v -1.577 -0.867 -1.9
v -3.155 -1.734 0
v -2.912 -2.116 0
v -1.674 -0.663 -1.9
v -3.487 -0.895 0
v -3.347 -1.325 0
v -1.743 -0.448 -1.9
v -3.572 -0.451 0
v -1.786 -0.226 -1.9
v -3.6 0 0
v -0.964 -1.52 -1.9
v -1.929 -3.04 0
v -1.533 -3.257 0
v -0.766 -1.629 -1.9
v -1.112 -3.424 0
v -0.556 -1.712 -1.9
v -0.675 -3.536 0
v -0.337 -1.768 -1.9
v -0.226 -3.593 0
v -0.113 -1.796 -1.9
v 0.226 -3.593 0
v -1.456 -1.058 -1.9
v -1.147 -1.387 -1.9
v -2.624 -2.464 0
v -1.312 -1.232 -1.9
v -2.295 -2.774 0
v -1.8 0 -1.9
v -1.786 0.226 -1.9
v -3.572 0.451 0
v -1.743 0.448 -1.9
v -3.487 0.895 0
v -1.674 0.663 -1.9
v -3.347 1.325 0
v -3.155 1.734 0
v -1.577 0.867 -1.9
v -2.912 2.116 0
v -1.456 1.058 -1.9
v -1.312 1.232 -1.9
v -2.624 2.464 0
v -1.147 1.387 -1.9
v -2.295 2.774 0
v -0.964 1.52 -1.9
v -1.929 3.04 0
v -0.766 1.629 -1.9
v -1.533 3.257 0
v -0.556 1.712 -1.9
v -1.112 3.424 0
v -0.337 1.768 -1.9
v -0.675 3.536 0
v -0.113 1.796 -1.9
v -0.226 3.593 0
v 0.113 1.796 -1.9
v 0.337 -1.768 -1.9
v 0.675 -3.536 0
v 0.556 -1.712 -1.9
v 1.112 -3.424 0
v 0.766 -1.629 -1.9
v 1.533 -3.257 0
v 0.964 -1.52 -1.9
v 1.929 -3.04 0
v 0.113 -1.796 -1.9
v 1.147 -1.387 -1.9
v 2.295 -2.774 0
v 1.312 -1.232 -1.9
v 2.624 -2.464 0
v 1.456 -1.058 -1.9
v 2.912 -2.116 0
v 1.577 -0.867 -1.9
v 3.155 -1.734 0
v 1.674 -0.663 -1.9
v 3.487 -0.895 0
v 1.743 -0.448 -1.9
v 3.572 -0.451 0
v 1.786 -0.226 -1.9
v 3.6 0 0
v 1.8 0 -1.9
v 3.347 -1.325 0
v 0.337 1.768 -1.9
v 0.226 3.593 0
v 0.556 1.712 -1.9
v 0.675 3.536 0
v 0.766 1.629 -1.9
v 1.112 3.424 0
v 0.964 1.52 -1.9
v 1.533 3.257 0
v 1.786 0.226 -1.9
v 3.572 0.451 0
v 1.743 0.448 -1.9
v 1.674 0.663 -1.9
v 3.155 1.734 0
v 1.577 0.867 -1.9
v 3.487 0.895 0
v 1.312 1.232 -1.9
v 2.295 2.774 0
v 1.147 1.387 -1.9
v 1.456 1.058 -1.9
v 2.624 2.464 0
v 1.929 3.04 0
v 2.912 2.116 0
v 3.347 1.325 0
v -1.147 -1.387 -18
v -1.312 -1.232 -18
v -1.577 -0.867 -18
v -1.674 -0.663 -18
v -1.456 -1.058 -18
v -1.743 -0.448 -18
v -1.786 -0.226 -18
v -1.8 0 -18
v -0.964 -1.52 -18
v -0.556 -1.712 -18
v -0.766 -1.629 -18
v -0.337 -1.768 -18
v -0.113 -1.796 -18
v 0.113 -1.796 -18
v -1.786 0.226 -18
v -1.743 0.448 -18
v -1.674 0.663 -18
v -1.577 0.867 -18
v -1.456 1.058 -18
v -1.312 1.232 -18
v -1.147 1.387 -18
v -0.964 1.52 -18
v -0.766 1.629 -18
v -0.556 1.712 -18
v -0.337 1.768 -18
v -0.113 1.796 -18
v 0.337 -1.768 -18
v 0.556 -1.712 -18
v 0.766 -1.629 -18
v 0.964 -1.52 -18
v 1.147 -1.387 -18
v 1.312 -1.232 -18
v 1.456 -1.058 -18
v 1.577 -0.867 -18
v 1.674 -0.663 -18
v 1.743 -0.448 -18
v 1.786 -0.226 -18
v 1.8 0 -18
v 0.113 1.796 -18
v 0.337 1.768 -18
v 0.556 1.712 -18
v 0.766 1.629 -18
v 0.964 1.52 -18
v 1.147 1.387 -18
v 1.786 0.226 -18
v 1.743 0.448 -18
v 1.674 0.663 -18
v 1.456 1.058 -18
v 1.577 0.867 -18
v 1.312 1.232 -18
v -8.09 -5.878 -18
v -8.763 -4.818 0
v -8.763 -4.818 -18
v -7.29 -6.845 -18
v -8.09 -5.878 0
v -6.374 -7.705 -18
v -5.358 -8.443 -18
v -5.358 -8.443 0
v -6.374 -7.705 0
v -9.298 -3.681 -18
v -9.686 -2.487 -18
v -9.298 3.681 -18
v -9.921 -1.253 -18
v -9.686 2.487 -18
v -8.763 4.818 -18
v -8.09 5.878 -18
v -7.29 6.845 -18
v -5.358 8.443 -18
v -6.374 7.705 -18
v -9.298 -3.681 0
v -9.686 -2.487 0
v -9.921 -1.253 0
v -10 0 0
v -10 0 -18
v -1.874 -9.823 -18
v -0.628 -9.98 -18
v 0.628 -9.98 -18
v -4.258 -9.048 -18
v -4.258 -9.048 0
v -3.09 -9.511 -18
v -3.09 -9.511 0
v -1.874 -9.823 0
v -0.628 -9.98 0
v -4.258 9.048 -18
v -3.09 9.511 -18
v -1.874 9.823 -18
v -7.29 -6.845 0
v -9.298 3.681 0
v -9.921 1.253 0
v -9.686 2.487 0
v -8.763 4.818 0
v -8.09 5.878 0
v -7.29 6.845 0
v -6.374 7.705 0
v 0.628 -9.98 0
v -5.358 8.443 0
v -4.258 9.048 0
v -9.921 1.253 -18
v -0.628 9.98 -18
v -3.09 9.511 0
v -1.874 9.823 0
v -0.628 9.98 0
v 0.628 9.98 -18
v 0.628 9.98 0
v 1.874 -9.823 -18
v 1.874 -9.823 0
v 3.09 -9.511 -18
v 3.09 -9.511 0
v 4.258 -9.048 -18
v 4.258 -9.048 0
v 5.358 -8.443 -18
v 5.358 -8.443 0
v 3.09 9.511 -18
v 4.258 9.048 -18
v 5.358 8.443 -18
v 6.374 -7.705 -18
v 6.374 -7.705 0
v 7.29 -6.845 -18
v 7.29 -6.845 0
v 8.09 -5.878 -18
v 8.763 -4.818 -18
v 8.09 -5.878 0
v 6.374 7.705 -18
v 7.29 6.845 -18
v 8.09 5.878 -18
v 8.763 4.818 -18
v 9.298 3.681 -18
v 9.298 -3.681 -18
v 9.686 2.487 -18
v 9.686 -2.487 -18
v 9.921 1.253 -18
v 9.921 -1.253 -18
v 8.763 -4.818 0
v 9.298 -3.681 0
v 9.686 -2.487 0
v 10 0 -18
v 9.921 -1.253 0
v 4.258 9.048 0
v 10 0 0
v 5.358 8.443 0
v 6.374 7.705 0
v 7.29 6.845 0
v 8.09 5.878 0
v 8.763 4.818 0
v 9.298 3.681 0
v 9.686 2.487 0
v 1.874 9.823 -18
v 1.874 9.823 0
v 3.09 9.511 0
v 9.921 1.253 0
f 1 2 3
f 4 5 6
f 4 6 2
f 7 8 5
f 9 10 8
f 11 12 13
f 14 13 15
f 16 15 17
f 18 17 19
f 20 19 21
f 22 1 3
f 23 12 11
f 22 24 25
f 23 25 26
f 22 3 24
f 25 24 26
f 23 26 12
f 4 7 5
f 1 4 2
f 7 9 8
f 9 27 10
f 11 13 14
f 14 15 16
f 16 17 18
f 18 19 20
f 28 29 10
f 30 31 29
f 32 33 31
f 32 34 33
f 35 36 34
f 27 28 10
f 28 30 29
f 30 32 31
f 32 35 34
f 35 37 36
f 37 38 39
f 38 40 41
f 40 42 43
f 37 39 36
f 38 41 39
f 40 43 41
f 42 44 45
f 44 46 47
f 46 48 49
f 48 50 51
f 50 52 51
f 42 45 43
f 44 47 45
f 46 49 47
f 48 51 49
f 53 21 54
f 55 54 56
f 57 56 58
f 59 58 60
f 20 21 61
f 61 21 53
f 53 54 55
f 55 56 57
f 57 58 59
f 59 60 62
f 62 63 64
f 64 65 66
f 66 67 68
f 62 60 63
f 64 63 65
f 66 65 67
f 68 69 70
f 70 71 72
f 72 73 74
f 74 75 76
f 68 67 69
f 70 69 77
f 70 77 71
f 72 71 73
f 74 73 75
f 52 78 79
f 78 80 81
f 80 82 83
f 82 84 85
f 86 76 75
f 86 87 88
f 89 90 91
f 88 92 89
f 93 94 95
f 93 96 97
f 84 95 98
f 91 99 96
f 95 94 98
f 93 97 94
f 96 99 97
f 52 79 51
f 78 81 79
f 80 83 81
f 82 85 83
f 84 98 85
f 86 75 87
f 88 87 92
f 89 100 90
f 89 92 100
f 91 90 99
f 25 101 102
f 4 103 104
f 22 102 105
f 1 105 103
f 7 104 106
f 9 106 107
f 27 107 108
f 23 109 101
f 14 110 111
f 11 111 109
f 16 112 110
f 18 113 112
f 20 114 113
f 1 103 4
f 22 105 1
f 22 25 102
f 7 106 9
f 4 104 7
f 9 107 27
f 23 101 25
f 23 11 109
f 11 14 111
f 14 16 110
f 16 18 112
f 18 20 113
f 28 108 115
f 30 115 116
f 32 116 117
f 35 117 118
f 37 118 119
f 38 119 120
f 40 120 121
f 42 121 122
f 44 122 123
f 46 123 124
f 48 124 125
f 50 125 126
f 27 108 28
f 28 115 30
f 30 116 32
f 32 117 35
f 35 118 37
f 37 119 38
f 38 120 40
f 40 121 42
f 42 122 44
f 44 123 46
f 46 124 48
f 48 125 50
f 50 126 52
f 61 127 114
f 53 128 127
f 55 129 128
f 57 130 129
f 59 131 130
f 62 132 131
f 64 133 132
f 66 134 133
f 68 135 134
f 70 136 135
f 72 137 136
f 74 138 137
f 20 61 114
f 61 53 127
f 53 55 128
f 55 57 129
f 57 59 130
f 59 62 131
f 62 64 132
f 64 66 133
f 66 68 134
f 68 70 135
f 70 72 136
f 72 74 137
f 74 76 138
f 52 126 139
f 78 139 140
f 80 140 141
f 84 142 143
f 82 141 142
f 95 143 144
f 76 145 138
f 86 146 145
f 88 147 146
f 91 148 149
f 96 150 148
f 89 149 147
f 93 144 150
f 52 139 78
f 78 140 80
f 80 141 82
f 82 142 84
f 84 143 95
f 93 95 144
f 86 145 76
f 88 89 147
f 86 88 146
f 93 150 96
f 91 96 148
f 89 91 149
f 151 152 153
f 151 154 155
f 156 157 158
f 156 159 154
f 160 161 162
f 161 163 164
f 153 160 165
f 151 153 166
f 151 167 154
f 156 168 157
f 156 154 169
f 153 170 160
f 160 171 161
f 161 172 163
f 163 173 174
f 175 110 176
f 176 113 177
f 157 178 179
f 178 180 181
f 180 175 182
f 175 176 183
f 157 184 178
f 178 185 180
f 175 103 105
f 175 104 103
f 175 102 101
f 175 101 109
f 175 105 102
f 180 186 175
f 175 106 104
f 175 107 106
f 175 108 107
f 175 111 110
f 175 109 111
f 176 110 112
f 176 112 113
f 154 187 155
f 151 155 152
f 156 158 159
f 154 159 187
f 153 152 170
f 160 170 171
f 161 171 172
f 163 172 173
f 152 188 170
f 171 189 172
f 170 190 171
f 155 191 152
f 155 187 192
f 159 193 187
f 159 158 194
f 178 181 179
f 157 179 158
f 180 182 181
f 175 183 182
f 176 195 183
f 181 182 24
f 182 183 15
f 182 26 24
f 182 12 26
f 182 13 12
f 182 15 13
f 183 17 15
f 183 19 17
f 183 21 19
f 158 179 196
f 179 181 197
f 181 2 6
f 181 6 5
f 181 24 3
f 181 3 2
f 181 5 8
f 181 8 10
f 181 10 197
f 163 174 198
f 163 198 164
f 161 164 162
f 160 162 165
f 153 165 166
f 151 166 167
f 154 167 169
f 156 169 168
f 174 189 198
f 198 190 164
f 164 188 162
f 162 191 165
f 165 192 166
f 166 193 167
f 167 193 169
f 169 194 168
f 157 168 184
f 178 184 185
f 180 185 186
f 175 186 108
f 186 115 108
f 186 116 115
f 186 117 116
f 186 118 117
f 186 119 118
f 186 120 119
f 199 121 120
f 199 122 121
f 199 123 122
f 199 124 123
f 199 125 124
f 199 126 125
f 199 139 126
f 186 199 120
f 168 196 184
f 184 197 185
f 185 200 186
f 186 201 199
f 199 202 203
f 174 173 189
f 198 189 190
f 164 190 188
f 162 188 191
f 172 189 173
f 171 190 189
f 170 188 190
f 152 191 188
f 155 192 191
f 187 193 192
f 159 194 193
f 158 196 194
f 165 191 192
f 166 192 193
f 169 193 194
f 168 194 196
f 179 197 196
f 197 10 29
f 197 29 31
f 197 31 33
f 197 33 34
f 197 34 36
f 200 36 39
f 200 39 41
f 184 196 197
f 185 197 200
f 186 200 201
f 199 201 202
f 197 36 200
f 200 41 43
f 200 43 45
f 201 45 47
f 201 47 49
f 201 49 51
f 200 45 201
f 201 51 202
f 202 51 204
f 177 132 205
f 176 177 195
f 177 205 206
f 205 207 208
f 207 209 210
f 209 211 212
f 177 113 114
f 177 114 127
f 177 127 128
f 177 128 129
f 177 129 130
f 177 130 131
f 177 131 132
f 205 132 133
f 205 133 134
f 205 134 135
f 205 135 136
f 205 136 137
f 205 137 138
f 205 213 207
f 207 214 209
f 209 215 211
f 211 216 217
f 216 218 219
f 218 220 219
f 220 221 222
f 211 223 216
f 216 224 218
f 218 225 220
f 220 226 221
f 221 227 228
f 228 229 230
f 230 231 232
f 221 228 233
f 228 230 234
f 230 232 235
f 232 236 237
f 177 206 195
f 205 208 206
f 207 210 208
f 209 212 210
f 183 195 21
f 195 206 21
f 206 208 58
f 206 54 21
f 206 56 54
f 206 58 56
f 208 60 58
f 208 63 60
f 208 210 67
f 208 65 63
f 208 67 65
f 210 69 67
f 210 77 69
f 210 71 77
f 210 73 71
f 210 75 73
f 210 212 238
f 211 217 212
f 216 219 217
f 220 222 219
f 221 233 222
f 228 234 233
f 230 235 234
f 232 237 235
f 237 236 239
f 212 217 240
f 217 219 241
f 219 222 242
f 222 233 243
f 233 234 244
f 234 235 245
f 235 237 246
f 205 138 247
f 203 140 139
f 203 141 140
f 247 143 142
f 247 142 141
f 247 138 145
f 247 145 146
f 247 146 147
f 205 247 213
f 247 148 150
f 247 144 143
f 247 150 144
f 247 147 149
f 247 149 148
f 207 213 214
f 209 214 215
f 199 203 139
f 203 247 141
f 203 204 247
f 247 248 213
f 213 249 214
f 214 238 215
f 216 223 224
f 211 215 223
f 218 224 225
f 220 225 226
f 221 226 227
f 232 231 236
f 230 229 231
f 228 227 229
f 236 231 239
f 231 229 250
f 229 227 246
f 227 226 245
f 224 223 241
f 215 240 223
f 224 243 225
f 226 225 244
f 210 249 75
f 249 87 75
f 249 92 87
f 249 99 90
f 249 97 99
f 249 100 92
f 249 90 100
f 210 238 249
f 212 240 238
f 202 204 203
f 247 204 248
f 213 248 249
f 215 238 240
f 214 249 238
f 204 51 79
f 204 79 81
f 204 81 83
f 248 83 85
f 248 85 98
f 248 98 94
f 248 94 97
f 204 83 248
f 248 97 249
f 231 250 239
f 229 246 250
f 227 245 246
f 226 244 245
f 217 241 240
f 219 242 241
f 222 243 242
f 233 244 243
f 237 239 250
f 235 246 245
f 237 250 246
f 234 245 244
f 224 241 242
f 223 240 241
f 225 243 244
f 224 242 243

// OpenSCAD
$fn = 50;

difference() {
	union() {
		translate(v = [0, 0, -18.0]) {
			cylinder(h = 18, r = 10.0);
		}
	}
	union() {
		translate(v = [0, 0, 0]) {
			rotate(a = [0, 0, 0]) {
				difference() {
					union() {
						translate(v = [0, 0, -21.0]) {
							cylinder(h = 21, r = 1.5);
						}
						translate(v = [0, 0, -1.9]) {
							cylinder(h = 1.9, r1 = 1.8, r2 = 3.6);
						}
						translate(v = [0, 0, -21.0]) {
							cylinder(h = 21, r = 1.8);
						}
						translate(v = [0, 0, -21.0]) {
							cylinder(h = 21, r = 1.5);
						}
					}
					union();
				}
			}
		}
	}
}
